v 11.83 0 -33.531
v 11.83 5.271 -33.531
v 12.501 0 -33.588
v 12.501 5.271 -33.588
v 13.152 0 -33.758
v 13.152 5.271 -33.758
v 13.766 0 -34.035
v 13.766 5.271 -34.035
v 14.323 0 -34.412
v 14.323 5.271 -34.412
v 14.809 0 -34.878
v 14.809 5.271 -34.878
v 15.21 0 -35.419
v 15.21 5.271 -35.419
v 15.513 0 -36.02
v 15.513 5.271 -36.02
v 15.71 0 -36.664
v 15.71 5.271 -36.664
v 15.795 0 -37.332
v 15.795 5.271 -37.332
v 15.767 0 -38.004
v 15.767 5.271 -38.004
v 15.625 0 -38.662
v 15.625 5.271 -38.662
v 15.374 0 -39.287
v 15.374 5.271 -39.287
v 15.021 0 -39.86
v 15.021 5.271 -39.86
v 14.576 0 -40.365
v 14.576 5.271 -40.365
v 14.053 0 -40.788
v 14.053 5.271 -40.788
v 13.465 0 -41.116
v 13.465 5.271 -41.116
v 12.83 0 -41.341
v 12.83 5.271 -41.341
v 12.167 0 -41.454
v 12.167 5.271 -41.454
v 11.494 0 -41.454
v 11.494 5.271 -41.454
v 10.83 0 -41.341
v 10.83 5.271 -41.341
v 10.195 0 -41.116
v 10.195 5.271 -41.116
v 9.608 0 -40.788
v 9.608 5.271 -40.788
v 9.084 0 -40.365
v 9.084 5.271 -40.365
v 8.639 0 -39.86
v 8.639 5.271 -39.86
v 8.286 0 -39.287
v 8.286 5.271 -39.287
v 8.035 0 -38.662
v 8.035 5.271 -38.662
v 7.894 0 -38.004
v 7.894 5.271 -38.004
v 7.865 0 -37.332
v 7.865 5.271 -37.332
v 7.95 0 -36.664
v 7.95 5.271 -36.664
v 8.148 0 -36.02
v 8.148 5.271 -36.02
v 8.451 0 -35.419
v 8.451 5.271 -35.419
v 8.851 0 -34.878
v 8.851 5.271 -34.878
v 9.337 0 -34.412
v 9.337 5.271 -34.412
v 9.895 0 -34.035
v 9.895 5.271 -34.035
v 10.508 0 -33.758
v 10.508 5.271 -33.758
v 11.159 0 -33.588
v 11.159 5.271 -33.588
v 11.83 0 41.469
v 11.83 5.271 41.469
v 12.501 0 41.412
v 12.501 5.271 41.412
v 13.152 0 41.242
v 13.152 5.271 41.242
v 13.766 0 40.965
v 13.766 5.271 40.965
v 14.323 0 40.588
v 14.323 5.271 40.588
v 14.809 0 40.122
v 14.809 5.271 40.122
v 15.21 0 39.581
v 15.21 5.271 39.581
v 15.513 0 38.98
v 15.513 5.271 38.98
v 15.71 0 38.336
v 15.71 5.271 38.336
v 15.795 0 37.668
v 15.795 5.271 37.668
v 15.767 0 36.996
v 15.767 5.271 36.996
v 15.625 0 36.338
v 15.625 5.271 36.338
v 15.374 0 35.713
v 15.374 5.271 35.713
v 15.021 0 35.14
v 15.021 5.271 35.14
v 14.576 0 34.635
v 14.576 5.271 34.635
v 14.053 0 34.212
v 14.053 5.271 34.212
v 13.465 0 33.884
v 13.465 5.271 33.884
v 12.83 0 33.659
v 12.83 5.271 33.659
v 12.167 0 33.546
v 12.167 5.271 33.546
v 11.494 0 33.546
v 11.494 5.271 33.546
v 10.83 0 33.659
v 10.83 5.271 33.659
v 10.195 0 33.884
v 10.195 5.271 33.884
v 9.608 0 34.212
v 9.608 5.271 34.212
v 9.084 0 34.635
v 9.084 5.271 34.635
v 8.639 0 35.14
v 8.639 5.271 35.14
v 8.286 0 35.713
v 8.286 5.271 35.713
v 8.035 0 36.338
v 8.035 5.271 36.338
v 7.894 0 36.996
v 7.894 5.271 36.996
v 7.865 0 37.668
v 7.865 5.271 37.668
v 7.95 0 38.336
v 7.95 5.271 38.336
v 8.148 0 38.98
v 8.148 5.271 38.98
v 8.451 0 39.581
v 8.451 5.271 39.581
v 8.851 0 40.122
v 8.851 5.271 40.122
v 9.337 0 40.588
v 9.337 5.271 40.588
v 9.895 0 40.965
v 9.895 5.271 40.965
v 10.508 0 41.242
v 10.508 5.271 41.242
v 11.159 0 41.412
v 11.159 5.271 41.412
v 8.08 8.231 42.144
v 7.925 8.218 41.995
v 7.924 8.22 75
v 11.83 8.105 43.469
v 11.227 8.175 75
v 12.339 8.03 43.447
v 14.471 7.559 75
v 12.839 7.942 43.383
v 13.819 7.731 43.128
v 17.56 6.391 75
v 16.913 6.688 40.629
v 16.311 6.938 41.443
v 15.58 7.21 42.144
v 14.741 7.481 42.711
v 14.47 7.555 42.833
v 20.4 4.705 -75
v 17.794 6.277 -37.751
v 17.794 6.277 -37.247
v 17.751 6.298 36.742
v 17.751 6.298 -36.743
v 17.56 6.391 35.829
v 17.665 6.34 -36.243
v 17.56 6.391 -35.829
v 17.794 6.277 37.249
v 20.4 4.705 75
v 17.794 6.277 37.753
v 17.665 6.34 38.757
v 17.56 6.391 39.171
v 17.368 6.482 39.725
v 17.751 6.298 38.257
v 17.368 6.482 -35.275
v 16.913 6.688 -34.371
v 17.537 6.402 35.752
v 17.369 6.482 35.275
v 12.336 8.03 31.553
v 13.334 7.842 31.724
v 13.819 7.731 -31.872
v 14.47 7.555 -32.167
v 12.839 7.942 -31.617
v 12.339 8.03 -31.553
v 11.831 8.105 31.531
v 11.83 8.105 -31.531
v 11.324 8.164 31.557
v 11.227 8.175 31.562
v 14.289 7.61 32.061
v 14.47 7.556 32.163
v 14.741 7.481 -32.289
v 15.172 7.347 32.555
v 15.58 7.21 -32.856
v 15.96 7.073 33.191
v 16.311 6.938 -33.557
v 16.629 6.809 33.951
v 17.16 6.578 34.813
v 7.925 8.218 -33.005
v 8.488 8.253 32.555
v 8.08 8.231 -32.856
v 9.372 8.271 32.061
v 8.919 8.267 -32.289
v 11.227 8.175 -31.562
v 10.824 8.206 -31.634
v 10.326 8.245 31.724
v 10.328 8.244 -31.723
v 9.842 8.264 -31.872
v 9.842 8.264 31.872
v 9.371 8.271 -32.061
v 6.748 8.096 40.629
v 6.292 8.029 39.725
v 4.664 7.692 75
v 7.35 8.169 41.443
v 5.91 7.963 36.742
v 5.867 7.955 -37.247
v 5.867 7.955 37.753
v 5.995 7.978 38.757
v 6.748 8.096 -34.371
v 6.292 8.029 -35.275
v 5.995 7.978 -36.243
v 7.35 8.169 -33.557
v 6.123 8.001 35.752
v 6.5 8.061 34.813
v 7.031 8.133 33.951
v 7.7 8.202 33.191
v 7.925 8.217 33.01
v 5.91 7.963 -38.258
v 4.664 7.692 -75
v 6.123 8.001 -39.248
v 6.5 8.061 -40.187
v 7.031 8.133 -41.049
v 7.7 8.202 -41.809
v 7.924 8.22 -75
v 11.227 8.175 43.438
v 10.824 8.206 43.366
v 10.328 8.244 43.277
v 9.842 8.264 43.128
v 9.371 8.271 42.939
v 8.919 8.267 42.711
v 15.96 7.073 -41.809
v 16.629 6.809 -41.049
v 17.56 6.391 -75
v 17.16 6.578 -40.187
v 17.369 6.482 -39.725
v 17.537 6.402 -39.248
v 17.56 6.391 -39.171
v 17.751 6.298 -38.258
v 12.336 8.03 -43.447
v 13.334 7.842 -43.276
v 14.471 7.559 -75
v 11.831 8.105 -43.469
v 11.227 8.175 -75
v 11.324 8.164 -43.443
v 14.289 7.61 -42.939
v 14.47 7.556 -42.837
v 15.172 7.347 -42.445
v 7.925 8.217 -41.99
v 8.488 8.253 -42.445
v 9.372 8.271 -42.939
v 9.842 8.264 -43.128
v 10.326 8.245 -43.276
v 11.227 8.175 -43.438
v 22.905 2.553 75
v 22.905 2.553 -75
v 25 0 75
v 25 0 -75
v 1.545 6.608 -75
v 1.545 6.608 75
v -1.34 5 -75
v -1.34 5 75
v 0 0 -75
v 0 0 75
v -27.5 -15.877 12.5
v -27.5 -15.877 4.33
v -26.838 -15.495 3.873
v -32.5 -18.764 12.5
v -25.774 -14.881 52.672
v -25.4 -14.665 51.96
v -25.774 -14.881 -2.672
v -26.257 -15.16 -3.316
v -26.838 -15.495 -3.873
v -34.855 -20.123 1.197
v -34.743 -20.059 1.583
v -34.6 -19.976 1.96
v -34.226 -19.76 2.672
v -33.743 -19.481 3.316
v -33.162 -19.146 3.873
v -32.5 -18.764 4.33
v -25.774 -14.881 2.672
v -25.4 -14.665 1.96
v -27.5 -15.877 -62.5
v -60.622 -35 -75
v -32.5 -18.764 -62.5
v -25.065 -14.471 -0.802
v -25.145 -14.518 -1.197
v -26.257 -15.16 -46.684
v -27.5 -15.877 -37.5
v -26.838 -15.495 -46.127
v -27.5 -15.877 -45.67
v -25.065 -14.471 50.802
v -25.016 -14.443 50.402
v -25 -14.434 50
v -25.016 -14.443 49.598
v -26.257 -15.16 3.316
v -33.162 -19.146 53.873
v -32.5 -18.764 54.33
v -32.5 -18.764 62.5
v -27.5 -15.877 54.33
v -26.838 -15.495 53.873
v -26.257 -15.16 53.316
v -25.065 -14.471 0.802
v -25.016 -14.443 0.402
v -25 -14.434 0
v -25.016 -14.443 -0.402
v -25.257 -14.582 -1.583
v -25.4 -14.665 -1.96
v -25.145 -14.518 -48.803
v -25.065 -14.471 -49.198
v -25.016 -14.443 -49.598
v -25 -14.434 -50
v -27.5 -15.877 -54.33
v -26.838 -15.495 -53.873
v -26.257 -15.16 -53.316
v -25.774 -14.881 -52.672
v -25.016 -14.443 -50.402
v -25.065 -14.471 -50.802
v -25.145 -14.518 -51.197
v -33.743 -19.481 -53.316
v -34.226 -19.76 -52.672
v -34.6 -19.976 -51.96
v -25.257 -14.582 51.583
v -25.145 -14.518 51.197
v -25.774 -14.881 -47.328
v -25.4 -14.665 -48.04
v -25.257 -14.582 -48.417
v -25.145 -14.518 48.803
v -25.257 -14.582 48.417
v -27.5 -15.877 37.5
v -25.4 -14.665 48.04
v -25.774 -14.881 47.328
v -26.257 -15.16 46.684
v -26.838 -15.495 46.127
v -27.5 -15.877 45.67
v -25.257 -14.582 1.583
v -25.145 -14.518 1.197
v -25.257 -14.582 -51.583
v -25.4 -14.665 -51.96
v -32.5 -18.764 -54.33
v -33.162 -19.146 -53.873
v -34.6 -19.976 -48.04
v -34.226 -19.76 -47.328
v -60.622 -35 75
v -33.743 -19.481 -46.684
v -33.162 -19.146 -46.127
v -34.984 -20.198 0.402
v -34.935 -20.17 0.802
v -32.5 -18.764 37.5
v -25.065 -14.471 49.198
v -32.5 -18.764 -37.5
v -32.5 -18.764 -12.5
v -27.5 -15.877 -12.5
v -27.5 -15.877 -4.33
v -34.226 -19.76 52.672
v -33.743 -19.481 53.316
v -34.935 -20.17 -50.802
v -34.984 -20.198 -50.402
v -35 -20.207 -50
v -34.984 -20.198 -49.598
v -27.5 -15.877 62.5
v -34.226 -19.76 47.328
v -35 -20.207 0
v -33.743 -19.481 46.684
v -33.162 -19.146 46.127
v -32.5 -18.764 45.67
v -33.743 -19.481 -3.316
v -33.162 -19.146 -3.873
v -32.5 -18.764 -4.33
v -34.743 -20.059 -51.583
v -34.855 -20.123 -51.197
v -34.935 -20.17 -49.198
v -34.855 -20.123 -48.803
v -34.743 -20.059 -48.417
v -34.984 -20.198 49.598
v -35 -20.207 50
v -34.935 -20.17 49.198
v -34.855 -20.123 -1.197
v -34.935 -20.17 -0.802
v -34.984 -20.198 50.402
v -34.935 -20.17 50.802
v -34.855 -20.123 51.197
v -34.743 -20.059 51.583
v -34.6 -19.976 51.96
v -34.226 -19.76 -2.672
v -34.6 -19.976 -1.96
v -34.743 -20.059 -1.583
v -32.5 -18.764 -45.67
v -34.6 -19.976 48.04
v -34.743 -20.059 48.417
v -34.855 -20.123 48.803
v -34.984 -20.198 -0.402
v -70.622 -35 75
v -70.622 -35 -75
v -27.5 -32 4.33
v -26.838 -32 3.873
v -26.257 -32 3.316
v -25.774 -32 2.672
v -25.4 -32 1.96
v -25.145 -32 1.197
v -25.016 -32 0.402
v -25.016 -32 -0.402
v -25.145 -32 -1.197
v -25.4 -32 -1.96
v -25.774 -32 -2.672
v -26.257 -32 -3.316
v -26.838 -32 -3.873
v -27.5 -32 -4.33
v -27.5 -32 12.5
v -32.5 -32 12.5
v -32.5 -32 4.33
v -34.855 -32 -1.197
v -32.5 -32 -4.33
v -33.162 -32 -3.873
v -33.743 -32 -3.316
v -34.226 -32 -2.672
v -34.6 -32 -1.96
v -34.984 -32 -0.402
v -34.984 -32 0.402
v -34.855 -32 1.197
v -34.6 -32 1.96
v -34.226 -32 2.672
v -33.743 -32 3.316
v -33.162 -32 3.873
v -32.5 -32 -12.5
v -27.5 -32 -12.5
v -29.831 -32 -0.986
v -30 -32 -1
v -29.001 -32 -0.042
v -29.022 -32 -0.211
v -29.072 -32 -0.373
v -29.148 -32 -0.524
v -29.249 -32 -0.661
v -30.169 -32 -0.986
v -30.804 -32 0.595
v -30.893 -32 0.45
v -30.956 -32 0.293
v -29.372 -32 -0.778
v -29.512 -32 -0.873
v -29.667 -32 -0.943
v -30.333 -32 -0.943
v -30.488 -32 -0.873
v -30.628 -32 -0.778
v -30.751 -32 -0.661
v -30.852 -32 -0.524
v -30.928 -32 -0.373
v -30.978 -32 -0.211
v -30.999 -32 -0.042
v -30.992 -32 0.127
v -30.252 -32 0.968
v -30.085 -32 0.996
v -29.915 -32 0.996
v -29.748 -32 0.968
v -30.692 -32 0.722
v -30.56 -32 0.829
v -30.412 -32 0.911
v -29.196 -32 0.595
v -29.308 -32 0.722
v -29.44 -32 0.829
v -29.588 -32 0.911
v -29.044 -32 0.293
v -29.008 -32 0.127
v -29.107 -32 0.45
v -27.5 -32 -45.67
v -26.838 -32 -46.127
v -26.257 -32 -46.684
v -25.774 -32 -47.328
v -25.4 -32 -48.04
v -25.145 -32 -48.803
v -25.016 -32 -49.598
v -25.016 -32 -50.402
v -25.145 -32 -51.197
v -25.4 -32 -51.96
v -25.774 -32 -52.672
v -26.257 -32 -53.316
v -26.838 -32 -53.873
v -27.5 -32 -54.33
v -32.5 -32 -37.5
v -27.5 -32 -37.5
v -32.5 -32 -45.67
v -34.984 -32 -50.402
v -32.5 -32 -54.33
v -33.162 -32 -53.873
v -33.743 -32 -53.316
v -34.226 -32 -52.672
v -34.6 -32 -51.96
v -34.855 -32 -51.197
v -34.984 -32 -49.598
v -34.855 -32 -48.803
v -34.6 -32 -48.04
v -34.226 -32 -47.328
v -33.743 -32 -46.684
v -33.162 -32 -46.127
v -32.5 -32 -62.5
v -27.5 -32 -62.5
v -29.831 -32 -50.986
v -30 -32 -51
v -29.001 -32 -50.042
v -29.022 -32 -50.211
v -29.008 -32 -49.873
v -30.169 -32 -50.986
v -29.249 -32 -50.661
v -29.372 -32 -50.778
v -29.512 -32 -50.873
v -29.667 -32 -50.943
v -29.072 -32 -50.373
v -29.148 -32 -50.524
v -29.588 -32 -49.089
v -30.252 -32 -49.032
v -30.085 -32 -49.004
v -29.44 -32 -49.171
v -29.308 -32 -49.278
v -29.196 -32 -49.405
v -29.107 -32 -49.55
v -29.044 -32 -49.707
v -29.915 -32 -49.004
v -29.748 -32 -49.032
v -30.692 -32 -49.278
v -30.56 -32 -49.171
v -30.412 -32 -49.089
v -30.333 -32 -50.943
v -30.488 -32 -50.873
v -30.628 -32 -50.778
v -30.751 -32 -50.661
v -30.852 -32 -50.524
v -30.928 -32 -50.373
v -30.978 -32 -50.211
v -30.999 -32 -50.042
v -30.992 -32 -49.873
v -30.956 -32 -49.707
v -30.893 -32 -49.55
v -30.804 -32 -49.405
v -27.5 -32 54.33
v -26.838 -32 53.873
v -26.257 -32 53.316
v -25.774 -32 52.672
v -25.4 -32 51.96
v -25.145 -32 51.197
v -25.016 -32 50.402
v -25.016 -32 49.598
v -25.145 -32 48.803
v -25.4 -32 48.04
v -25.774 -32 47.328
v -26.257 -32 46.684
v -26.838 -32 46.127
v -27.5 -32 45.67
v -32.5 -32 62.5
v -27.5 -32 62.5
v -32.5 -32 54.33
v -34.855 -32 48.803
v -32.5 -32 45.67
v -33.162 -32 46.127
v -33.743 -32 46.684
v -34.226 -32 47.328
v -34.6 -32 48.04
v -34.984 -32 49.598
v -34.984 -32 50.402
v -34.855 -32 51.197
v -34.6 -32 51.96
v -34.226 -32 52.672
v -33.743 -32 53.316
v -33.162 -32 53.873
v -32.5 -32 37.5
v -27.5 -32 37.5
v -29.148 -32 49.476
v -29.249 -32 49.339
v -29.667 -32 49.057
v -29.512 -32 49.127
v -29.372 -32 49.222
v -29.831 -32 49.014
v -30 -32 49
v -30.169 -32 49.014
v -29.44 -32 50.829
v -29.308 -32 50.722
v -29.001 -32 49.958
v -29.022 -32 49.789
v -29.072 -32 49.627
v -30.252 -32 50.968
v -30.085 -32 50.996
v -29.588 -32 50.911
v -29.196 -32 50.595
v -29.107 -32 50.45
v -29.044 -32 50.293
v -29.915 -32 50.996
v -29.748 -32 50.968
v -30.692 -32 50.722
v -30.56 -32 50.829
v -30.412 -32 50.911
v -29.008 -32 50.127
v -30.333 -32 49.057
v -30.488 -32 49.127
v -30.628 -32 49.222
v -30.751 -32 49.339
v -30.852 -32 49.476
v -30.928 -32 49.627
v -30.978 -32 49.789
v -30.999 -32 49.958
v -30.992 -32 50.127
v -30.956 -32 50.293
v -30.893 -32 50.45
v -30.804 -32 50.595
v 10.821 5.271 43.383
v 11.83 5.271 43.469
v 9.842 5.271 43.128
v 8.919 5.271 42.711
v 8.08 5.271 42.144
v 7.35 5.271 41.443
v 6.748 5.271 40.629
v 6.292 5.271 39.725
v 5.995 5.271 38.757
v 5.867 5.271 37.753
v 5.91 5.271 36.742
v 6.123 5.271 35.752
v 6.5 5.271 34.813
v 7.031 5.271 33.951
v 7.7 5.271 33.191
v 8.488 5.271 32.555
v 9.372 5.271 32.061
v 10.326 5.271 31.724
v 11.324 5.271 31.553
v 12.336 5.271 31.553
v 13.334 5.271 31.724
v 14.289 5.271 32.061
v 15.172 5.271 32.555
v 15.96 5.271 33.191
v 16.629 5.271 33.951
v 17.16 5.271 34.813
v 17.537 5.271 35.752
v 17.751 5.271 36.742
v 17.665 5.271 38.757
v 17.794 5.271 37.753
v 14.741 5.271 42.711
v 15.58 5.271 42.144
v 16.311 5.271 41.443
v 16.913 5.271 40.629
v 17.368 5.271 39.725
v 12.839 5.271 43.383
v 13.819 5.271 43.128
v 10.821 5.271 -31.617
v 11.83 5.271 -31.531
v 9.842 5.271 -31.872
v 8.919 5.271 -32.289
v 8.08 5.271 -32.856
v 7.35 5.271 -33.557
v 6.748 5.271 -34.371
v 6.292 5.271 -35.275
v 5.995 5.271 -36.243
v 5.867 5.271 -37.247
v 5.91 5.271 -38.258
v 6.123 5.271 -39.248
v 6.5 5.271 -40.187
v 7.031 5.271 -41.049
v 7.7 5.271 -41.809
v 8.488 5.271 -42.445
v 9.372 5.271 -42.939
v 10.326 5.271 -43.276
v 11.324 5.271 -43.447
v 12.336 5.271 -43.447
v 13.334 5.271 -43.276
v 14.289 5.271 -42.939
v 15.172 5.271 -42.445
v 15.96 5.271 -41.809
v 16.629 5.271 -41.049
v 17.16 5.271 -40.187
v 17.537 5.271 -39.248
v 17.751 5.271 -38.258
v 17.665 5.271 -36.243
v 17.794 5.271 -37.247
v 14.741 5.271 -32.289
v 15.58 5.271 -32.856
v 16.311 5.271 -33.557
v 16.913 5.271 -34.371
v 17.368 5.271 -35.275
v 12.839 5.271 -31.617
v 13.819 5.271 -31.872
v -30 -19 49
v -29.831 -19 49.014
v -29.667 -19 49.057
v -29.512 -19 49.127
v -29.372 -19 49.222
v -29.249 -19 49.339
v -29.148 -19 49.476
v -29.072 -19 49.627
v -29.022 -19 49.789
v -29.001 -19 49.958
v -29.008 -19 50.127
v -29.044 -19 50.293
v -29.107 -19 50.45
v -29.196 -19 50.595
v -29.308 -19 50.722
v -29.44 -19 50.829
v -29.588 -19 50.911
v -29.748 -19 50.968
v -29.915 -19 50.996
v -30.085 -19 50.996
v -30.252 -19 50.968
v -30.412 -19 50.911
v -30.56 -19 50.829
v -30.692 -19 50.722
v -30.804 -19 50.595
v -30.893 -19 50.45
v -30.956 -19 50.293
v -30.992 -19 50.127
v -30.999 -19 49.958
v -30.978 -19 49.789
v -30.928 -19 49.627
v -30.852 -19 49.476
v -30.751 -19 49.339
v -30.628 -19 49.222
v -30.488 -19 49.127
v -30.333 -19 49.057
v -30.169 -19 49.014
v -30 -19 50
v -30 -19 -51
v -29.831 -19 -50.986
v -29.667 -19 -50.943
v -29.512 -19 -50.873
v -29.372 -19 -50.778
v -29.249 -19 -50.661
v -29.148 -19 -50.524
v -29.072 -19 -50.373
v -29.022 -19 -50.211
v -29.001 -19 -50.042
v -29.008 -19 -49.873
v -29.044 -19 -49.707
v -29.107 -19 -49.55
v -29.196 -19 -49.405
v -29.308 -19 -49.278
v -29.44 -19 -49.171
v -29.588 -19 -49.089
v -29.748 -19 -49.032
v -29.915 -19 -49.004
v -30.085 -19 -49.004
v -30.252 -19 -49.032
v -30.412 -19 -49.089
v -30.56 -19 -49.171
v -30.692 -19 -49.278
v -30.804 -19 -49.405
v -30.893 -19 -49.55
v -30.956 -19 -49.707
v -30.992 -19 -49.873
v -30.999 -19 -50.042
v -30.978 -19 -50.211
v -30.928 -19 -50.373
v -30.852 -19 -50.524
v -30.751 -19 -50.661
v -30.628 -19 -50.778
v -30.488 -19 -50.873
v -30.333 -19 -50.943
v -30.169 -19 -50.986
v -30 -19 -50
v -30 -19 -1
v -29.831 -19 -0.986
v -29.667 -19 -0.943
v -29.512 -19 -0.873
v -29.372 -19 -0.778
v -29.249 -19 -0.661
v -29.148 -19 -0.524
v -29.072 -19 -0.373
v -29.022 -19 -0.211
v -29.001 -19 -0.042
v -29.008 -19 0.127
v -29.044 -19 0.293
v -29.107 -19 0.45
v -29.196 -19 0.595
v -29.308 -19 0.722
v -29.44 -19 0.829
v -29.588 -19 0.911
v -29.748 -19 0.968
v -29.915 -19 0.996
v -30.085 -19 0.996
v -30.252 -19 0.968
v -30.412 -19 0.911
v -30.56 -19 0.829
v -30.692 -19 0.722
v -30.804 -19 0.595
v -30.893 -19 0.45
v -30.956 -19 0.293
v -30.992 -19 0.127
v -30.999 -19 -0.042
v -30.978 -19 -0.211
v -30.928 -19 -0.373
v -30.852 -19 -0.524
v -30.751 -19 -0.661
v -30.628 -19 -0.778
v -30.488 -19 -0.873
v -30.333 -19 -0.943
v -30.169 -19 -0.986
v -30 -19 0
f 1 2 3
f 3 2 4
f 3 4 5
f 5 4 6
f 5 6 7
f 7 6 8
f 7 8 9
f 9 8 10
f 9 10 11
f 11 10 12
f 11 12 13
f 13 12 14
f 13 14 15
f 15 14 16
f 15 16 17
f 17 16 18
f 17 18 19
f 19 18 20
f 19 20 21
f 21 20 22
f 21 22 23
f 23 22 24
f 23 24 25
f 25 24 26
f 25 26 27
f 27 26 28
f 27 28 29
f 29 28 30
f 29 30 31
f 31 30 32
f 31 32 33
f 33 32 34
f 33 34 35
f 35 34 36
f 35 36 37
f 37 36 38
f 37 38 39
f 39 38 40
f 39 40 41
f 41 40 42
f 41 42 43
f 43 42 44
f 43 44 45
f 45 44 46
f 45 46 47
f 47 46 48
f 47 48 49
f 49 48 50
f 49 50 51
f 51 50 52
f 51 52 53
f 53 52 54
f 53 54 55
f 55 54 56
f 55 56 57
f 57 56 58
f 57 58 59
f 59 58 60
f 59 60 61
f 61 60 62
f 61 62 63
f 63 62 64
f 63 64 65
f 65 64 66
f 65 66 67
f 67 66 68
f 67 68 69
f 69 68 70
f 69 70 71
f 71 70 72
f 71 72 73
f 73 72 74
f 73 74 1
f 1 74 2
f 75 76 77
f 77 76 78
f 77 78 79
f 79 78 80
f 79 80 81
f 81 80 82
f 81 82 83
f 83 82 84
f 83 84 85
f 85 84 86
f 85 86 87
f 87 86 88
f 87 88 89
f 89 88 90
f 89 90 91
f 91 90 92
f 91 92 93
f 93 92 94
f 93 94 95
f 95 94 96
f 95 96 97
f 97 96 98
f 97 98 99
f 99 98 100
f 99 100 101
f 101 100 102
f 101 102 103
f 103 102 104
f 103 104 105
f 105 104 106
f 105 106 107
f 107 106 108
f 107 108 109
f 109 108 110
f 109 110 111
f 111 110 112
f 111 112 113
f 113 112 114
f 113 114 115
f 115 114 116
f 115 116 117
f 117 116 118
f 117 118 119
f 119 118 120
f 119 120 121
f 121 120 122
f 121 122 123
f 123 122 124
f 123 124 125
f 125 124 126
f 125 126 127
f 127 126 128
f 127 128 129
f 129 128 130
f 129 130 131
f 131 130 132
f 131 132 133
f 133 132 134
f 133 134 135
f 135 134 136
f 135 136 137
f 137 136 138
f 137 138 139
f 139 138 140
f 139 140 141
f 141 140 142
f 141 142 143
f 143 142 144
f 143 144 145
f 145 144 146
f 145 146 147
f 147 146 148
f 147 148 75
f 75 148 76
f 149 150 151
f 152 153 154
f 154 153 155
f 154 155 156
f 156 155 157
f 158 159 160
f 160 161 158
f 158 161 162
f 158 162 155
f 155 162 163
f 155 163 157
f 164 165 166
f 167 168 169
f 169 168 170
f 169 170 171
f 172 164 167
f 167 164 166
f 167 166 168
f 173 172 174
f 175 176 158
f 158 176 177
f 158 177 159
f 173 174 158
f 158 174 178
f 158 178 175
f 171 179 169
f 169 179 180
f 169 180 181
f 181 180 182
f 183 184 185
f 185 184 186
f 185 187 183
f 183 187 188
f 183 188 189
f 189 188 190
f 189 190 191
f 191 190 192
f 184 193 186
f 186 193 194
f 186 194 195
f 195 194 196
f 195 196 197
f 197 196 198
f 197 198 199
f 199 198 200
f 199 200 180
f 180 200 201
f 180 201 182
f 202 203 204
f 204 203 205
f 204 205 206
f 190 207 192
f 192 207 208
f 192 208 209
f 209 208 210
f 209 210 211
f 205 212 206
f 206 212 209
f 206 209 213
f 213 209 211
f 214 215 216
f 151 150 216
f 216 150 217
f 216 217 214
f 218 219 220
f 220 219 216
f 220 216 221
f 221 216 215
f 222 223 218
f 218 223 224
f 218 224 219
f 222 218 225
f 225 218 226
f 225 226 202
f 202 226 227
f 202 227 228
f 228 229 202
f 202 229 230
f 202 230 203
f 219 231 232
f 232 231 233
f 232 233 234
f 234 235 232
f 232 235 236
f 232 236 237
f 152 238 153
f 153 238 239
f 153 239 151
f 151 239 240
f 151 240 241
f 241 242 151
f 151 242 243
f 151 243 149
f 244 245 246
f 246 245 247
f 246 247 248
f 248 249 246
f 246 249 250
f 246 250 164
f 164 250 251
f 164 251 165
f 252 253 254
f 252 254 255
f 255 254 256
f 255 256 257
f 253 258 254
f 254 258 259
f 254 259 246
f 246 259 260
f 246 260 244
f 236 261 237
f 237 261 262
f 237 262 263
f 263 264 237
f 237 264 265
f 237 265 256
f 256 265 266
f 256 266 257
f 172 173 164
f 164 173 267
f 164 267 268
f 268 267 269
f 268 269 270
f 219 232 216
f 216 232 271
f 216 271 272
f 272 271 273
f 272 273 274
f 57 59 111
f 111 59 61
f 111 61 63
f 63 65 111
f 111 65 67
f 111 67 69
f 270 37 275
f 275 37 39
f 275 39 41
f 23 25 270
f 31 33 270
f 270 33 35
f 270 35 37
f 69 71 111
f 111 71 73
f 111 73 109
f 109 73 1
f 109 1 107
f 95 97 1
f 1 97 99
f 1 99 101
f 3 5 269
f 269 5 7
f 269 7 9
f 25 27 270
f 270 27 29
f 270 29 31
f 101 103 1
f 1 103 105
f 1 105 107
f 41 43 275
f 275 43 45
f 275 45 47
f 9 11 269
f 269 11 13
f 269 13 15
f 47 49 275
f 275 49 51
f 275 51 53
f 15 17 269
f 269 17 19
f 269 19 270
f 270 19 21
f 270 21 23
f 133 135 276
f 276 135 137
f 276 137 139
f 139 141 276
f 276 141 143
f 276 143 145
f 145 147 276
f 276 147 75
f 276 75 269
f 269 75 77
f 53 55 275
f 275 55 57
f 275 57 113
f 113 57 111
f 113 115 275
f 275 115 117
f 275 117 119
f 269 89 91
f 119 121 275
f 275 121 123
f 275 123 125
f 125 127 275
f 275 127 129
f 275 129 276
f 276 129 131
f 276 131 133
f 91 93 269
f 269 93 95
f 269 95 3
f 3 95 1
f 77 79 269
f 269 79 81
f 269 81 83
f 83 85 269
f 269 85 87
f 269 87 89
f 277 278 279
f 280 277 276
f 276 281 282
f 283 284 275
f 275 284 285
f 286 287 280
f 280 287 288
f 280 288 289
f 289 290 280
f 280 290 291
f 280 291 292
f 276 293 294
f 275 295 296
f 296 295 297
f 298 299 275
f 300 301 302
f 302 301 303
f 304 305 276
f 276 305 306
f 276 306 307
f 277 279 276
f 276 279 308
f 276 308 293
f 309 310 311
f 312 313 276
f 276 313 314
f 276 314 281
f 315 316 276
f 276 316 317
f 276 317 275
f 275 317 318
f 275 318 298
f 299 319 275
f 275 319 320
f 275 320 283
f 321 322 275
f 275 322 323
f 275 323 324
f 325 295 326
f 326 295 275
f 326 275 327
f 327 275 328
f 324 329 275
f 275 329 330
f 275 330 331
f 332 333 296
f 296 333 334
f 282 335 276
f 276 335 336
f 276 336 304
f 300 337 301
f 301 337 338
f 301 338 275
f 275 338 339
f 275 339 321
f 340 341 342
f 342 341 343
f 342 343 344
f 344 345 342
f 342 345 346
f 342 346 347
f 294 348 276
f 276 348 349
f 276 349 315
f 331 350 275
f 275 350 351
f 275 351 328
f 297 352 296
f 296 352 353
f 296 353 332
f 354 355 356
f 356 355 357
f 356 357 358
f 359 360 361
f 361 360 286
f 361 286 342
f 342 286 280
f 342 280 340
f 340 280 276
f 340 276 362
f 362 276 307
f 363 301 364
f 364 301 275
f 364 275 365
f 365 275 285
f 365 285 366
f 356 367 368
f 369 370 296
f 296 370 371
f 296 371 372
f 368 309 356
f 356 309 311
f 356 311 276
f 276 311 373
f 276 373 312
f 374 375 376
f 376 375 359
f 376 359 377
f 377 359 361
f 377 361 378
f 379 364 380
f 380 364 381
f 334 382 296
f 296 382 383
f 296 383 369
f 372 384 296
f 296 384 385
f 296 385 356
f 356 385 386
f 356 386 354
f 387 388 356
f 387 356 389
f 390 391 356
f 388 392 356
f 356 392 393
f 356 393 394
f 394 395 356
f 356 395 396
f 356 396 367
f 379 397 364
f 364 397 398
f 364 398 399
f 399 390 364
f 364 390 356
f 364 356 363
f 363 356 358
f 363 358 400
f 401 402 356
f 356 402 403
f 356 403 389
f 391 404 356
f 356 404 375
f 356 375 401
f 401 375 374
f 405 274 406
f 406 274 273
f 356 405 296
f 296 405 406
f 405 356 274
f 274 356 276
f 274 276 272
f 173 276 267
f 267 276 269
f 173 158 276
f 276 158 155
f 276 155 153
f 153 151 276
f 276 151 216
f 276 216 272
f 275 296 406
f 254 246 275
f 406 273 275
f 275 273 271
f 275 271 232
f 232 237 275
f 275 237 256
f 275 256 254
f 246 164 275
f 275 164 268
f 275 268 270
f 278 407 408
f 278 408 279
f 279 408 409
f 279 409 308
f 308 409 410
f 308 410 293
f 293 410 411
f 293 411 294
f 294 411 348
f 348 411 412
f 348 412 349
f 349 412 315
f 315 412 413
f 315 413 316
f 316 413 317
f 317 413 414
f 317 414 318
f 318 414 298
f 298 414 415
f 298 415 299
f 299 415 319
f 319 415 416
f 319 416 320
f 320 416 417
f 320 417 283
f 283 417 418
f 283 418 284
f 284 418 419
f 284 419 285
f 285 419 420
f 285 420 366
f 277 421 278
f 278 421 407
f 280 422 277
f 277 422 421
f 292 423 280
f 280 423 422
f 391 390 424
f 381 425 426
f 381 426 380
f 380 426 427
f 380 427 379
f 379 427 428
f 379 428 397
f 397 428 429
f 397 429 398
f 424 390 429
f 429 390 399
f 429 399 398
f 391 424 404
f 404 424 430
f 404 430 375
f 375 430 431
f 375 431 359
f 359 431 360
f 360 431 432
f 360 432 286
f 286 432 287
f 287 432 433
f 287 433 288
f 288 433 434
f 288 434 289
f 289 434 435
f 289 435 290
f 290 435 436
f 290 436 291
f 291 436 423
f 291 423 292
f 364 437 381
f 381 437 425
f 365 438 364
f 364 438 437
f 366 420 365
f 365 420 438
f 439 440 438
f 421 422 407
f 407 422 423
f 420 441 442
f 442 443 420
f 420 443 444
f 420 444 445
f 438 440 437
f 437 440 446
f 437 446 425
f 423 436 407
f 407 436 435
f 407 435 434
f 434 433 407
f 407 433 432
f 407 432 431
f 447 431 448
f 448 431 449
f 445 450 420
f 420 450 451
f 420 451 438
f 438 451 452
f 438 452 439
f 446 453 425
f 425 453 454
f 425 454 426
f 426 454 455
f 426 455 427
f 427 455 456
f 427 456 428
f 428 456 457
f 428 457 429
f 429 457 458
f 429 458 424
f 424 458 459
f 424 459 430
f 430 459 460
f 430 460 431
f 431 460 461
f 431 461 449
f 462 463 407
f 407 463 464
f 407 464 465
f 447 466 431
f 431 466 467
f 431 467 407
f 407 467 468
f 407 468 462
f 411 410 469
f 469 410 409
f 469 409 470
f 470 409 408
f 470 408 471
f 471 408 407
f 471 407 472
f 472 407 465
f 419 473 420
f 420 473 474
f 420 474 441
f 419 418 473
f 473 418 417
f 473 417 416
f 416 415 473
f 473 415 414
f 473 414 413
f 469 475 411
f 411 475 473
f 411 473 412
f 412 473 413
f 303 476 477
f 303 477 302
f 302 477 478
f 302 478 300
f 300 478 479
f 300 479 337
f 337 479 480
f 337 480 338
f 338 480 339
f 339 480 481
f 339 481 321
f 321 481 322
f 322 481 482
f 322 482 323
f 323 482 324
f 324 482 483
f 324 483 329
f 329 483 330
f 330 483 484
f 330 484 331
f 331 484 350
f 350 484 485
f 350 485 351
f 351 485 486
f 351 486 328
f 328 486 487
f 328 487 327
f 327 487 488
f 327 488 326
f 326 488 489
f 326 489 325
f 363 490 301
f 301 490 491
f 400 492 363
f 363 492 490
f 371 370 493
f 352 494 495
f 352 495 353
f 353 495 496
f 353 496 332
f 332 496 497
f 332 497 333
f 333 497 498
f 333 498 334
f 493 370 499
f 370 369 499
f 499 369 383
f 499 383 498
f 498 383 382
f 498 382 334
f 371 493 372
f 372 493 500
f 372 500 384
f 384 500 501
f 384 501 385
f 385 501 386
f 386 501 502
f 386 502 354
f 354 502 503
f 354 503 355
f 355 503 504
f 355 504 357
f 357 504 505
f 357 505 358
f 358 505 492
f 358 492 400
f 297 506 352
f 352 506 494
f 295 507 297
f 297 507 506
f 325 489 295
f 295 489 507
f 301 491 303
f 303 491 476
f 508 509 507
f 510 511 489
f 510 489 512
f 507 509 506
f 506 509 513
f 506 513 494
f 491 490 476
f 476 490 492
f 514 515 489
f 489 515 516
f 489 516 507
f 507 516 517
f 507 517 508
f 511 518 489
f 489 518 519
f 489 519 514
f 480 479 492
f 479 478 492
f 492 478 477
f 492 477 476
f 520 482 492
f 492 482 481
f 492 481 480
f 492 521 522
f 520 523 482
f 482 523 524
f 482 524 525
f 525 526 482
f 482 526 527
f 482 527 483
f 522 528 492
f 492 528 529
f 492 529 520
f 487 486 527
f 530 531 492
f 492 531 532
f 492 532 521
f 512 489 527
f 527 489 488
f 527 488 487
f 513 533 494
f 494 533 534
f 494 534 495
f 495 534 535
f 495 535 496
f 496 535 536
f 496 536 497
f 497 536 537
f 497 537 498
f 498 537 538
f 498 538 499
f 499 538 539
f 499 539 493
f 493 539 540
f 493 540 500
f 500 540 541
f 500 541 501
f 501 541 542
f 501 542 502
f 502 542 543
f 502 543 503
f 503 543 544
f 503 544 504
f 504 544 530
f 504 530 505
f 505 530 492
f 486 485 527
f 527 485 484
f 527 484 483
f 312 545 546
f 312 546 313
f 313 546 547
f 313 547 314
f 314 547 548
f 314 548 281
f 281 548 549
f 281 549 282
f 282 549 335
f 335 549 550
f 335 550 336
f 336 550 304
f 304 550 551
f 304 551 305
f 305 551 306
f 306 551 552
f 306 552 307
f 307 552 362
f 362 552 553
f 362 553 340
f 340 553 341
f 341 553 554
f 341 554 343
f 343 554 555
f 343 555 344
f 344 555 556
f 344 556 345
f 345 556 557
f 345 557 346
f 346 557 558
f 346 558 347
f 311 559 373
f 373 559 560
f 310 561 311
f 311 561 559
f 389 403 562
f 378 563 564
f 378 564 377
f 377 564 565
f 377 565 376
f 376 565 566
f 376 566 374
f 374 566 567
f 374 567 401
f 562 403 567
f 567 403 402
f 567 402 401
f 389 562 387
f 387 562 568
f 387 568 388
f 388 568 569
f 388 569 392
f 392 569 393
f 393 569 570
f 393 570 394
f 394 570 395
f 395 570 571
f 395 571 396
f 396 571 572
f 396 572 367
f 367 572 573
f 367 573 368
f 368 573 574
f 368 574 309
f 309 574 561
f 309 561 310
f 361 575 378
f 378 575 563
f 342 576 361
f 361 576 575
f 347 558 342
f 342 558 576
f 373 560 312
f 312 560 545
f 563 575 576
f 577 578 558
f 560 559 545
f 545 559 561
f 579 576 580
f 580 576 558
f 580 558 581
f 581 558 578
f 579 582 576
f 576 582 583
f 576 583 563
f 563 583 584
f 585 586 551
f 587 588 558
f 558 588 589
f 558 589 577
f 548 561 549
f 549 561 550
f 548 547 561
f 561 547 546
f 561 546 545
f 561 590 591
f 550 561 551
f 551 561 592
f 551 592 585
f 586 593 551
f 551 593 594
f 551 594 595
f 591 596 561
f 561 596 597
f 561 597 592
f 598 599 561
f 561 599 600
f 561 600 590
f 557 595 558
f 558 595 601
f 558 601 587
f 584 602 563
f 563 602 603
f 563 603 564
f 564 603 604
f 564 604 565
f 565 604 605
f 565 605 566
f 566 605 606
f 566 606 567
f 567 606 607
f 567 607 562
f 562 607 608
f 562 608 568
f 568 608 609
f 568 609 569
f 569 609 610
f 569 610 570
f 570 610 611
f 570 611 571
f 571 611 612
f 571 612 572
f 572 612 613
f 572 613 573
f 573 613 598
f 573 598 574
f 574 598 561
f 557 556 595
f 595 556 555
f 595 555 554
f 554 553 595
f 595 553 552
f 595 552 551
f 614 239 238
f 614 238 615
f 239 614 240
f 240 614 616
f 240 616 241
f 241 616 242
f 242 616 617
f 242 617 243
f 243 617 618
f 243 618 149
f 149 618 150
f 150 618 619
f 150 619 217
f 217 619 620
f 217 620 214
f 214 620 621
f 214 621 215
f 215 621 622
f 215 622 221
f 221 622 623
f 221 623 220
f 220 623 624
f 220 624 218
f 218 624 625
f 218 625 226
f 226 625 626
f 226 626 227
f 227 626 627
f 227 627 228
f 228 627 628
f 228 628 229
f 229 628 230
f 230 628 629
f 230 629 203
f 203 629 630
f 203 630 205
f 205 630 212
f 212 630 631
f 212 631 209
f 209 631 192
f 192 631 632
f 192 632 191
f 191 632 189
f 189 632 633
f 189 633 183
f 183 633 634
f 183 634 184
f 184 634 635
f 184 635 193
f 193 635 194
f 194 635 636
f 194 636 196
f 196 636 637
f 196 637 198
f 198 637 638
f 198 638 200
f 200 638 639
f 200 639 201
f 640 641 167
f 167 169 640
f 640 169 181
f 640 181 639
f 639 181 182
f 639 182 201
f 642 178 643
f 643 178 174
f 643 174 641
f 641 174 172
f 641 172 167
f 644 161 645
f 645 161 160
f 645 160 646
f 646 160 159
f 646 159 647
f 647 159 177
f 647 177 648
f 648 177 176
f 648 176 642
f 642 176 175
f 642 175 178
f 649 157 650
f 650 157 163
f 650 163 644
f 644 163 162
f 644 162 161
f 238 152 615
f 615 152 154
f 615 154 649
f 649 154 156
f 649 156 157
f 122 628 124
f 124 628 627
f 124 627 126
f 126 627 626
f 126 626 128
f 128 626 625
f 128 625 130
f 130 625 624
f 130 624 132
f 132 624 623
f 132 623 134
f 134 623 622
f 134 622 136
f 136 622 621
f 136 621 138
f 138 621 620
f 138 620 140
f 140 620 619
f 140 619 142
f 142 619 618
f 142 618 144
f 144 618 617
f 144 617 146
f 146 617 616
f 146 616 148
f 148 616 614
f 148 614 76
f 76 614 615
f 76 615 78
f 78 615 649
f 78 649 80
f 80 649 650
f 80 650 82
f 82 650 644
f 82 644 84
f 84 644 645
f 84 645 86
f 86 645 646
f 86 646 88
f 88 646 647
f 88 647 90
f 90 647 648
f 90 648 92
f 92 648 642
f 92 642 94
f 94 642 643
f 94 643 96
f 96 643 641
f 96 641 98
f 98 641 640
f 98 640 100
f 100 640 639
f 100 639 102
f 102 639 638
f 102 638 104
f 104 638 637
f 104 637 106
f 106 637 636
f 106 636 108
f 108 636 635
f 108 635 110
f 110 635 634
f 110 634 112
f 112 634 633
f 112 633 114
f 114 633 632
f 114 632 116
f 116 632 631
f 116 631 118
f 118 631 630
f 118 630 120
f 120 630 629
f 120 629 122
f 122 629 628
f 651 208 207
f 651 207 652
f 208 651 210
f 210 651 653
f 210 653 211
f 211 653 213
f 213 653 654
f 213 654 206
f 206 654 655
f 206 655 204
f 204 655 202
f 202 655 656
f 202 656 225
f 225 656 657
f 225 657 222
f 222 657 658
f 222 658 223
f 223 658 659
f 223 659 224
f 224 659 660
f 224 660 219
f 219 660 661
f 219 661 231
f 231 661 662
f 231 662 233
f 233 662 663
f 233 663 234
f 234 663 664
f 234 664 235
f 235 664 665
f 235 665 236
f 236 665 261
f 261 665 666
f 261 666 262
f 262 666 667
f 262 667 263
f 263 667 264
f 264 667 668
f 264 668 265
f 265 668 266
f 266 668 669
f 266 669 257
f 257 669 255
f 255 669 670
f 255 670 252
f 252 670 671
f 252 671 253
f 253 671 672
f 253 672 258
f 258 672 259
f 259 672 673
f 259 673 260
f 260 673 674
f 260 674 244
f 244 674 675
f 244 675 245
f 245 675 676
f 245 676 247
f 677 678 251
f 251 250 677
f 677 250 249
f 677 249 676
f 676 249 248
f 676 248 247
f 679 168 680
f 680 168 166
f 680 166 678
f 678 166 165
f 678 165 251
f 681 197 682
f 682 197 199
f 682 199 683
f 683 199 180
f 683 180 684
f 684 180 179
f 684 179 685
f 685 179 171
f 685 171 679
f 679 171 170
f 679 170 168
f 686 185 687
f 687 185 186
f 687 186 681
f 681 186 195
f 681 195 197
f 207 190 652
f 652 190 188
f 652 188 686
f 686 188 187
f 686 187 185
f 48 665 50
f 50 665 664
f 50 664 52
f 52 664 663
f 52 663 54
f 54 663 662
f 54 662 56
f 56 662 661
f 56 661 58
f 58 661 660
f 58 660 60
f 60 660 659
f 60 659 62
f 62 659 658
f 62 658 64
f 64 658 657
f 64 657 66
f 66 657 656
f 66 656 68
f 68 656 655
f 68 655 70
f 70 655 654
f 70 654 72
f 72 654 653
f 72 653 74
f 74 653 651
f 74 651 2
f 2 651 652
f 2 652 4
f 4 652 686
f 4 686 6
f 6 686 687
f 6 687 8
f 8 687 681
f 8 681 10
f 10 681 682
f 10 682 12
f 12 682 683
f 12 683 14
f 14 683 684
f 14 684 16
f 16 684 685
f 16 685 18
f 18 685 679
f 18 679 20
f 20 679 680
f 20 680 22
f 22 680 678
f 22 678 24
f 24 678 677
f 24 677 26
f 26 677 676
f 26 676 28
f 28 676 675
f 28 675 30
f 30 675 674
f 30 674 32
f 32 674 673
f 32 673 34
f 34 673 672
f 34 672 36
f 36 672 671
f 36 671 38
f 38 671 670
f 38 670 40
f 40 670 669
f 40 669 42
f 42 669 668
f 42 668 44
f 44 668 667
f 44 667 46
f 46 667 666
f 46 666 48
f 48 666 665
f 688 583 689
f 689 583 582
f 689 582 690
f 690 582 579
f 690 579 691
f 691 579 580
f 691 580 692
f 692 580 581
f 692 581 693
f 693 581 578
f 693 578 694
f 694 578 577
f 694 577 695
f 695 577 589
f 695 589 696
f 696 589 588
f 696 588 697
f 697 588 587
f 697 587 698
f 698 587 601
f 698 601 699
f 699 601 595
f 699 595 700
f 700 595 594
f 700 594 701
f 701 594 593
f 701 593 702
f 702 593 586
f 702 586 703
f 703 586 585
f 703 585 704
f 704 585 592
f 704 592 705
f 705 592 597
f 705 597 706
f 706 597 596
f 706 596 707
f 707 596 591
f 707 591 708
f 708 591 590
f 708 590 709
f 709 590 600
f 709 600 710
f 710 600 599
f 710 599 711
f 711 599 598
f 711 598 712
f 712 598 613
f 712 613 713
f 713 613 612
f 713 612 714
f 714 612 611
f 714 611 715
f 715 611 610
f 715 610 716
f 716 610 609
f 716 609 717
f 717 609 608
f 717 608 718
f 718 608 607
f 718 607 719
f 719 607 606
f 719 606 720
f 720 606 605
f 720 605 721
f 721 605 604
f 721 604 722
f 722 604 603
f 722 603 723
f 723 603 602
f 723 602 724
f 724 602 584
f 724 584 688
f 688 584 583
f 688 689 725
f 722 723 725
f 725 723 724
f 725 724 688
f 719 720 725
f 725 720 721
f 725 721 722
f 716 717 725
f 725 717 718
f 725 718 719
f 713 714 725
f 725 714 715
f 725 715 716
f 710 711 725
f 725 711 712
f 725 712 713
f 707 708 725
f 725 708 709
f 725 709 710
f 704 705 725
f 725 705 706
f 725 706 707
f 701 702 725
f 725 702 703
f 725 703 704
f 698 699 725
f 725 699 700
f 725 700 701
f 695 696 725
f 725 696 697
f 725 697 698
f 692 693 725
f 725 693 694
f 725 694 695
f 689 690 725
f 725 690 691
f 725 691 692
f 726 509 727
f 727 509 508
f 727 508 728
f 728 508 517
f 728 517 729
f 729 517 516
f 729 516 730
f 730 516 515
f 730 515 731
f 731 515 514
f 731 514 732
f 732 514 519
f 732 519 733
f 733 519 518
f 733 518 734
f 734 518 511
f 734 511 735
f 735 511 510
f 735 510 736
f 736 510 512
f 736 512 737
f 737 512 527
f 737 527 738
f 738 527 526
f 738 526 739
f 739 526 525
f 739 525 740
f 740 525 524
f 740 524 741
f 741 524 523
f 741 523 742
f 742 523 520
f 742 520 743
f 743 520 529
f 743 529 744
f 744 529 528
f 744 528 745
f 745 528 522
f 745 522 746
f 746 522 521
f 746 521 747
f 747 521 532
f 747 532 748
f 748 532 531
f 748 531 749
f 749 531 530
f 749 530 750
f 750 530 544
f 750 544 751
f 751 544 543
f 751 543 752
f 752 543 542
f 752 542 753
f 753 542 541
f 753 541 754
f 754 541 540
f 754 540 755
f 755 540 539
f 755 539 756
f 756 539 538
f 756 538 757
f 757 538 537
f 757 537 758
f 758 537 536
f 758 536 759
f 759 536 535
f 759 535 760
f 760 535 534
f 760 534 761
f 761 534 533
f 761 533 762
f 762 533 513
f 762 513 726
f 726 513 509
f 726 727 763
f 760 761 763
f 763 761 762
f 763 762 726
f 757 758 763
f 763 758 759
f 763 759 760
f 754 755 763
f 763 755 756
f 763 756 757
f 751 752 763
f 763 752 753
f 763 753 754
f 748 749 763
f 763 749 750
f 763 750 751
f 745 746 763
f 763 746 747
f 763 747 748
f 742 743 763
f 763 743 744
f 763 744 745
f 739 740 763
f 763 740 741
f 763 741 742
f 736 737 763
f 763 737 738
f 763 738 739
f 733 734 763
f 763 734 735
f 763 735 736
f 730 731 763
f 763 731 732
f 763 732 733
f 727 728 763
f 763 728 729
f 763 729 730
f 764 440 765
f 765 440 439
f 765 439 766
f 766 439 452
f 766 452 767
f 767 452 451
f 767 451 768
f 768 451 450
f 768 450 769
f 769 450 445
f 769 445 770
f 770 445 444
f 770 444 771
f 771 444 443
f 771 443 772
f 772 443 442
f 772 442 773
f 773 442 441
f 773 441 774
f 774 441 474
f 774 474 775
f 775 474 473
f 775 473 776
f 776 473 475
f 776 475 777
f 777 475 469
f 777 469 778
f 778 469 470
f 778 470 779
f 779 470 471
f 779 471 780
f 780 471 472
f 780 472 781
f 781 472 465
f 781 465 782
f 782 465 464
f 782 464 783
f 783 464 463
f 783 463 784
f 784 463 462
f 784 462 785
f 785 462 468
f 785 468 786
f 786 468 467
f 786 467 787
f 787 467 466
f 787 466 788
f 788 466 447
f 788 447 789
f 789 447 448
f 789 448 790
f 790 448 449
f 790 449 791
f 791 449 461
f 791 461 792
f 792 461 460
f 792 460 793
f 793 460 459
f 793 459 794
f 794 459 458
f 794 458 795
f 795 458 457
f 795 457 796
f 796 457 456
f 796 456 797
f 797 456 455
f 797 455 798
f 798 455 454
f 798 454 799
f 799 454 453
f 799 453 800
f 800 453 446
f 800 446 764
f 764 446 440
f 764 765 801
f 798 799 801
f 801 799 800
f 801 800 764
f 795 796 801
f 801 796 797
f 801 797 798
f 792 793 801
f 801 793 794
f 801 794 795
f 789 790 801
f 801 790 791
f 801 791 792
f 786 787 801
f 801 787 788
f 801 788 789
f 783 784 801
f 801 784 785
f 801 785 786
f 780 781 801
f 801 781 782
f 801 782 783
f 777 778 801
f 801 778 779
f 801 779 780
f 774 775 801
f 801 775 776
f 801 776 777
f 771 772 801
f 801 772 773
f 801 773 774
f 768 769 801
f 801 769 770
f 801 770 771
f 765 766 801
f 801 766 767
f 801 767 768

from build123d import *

# Parameters (mm, degrees)
SALIENTE_EXTRUIR2_DEPTH             = 75
SALIENTE_EXTRUIR5_DEPTH             = 17
SALIENTE_EXTRUIR5_DIRECTION_2_REACH = 107.612
CROQUIS6_R                          = 3.96875
CORTAR_EXTRUIR2_DEPTH               = 20
CROQUIS16_R                         = 5.96875
CROQUIS16_R_2                       = 3.96875
CORTAR_EXTRUIR3_DEPTH               = 3
CROQUIS17_R                         = 1
CORTAR_EXTRUIR4_DEPTH               = 13


with BuildPart() as part:
    # Croquis1 → Saliente-Extruir2 (new, symmetric)
    with BuildSketch(Plane.XY):
        with BuildLine():
            ThreePointArc((-1.339745962, 5), (12.862399029, 7.937956503), (25, 0))
            Line((25, 0), (0, 0))
            Line((0, 0), (-60.621778265, -35))
            Line((-60.621778265, -35), (-70.621778265, -35))
            Line((-70.621778265, -35), (-1.339745962, 5))
        make_face()
    extrude(amount=SALIENTE_EXTRUIR2_DEPTH, both=True)

    # Croquis3 → Saliente-Extruir5 (add)
    with BuildSketch(Plane.XZ.offset(15)):
        with BuildLine():
            Line((-32.5, 4.330127019), (-32.5, 12.5))
            Line((-32.5, 12.5), (-27.5, 12.5))
            Line((-27.5, 12.5), (-27.5, 4.330127019))
            ThreePointArc((-27.5, 4.330127019), (-25, 0), (-27.5, -4.330127019))
            Line((-27.5, -4.330127019), (-27.5, -12.5))
            Line((-27.5, -12.5), (-32.5, -12.5))
            Line((-32.5, -12.5), (-32.5, -4.330127019))
            ThreePointArc((-32.5, -4.330127019), (-35, 0), (-32.5, 4.330127019))
        make_face()
        with BuildLine():
            Line((-27.5, -45.669872981), (-27.5, -37.5))
            Line((-27.5, -37.5), (-32.5, -37.5))
            Line((-32.5, -37.5), (-32.5, -45.669872981))
            ThreePointArc((-32.5, -45.669872981), (-35, -50), (-32.5, -54.330127019))
            Line((-32.5, -54.330127019), (-32.5, -62.5))
            Line((-32.5, -62.5), (-27.5, -62.5))
            Line((-27.5, -62.5), (-27.5, -54.330127019))
            ThreePointArc((-27.5, -54.330127019), (-25, -50), (-27.5, -45.669872981))
        make_face()
        with BuildLine():
            Line((-27.5, 54.330127019), (-27.5, 62.5))
            Line((-27.5, 62.5), (-32.5, 62.5))
            Line((-32.5, 62.5), (-32.5, 54.330127019))
            ThreePointArc((-32.5, 54.330127019), (-35, 50), (-32.5, 45.669872981))
            Line((-32.5, 45.669872981), (-32.5, 37.5))
            Line((-32.5, 37.5), (-27.5, 37.5))
            Line((-27.5, 37.5), (-27.5, 45.669872981))
            ThreePointArc((-27.5, 45.669872981), (-25, 50), (-27.5, 54.330127019))
        make_face()
    extrude(amount=SALIENTE_EXTRUIR5_DEPTH)

    # Saliente-Extruir5 direction 2: up to this face of the body (flat: up to its plane)
    saliente_extruir5_direction_2_end = Plane(part.part.faces().sort_by_distance((-30.310889132, -17.5, 0))[0])
    # Croquis3 → Saliente-Extruir5 direction 2 (add, up to the picked face)
    with BuildSketch(Plane.XZ.offset(15), mode=Mode.PRIVATE) as saliente_extruir5_direction_2_sk1:
        with BuildLine():
            Line((-32.5, 4.330127019), (-32.5, 12.5))
            Line((-32.5, 12.5), (-27.5, 12.5))
            Line((-27.5, 12.5), (-27.5, 4.330127019))
            ThreePointArc((-27.5, 4.330127019), (-25, 0), (-27.5, -4.330127019))
            Line((-27.5, -4.330127019), (-27.5, -12.5))
            Line((-27.5, -12.5), (-32.5, -12.5))
            Line((-32.5, -12.5), (-32.5, -4.330127019))
            ThreePointArc((-32.5, -4.330127019), (-35, 0), (-32.5, 4.330127019))
        make_face()
    saliente_extruir5_direction_2_tool1 = split(extrude(saliente_extruir5_direction_2_sk1.sketch, amount=-SALIENTE_EXTRUIR5_DIRECTION_2_REACH, mode=Mode.PRIVATE), bisect_by=saliente_extruir5_direction_2_end, keep=Keep.BOTH, mode=Mode.PRIVATE)
    # Croquis3 → Saliente-Extruir5 direction 2 (add, up to the picked face)
    with BuildSketch(Plane.XZ.offset(15), mode=Mode.PRIVATE) as saliente_extruir5_direction_2_sk2:
        with BuildLine():
            Line((-27.5, -45.669872981), (-27.5, -37.5))
            Line((-27.5, -37.5), (-32.5, -37.5))
            Line((-32.5, -37.5), (-32.5, -45.669872981))
            ThreePointArc((-32.5, -45.669872981), (-35, -50), (-32.5, -54.330127019))
            Line((-32.5, -54.330127019), (-32.5, -62.5))
            Line((-32.5, -62.5), (-27.5, -62.5))
            Line((-27.5, -62.5), (-27.5, -54.330127019))
            ThreePointArc((-27.5, -54.330127019), (-25, -50), (-27.5, -45.669872981))
        make_face()
    saliente_extruir5_direction_2_tool2 = split(extrude(saliente_extruir5_direction_2_sk2.sketch, amount=-SALIENTE_EXTRUIR5_DIRECTION_2_REACH, mode=Mode.PRIVATE), bisect_by=saliente_extruir5_direction_2_end, keep=Keep.BOTH, mode=Mode.PRIVATE)
    # Croquis3 → Saliente-Extruir5 direction 2 (add, up to the picked face)
    with BuildSketch(Plane.XZ.offset(15), mode=Mode.PRIVATE) as saliente_extruir5_direction_2_sk3:
        with BuildLine():
            Line((-27.5, 54.330127019), (-27.5, 62.5))
            Line((-27.5, 62.5), (-32.5, 62.5))
            Line((-32.5, 62.5), (-32.5, 54.330127019))
            ThreePointArc((-32.5, 54.330127019), (-35, 50), (-32.5, 45.669872981))
            Line((-32.5, 45.669872981), (-32.5, 37.5))
            Line((-32.5, 37.5), (-27.5, 37.5))
            Line((-27.5, 37.5), (-27.5, 45.669872981))
            ThreePointArc((-27.5, 45.669872981), (-25, 50), (-27.5, 54.330127019))
        make_face()
    saliente_extruir5_direction_2_tool3 = split(extrude(saliente_extruir5_direction_2_sk3.sketch, amount=-SALIENTE_EXTRUIR5_DIRECTION_2_REACH, mode=Mode.PRIVATE), bisect_by=saliente_extruir5_direction_2_end, keep=Keep.BOTH, mode=Mode.PRIVATE)
    add(saliente_extruir5_direction_2_tool1.solids().sort_by(Axis((-30, -15, 0), (0, 1, 0)))[0])
    add(saliente_extruir5_direction_2_tool2.solids().sort_by(Axis((-30, -15, -50), (0, 1, 0)))[0])
    add(saliente_extruir5_direction_2_tool3.solids().sort_by(Axis((-30, -15, 50), (0, 1, 0)))[0])

    # Croquis6 → Cortar-Extruir2 (cut)
    with BuildSketch(Plane(origin=(0, 8.271300641, 0), x_dir=(1, 0, 0), z_dir=(0, 1, 0))):
        with Locations(Location((11.830127019, 37.5, 0), (0, 0, 270))):
            Circle(CROQUIS6_R)
        with Locations(Location((11.830127019, -37.5, 0), (0, 0, 270))):
            Circle(CROQUIS6_R)
    extrude(amount=-CORTAR_EXTRUIR2_DEPTH, mode=Mode.SUBTRACT)

    # Croquis16 → Cortar-Extruir3 (cut)
    # profile 1 of 2: a face of its own
    with BuildSketch(Plane(origin=(0, 8.271300641, 0), x_dir=(1, 0, 0), z_dir=(0, 1, 0))):
        with Locations(Location((11.830127019, 37.5, 0), (0, 0, 270))):
            Circle(CROQUIS16_R)
        with Locations(Location((11.830127019, 37.5, 0), (0, 0, 270))):
            Circle(CROQUIS16_R_2, mode=Mode.SUBTRACT)
    # profile 2 of 2: a face of its own
    with BuildSketch(Plane(origin=(0, 8.271300641, 0), x_dir=(1, 0, 0), z_dir=(0, 1, 0))):
        with Locations(Location((11.830127019, -37.5, 0), (0, 0, 270))):
            Circle(CROQUIS16_R)
        with Locations(Location((11.830127019, -37.5, 0), (0, 0, 270))):
            Circle(CROQUIS16_R_2, mode=Mode.SUBTRACT)
    extrude(amount=-CORTAR_EXTRUIR3_DEPTH, mode=Mode.SUBTRACT)

    # Croquis17 → Cortar-Extruir4 (cut)
    with BuildSketch(Plane.XZ.offset(32)):
        with Locations(Location((-30, 50, 0), (0, 0, 270))):
            Circle(CROQUIS17_R)
        with Locations(Location((-30, 0, 0), (0, 0, 270))):
            Circle(CROQUIS17_R)
        with Locations(Location((-30, -50, 0), (0, 0, 270))):
            Circle(CROQUIS17_R)
    extrude(amount=-CORTAR_EXTRUIR4_DEPTH, mode=Mode.SUBTRACT)


solid = part.part
